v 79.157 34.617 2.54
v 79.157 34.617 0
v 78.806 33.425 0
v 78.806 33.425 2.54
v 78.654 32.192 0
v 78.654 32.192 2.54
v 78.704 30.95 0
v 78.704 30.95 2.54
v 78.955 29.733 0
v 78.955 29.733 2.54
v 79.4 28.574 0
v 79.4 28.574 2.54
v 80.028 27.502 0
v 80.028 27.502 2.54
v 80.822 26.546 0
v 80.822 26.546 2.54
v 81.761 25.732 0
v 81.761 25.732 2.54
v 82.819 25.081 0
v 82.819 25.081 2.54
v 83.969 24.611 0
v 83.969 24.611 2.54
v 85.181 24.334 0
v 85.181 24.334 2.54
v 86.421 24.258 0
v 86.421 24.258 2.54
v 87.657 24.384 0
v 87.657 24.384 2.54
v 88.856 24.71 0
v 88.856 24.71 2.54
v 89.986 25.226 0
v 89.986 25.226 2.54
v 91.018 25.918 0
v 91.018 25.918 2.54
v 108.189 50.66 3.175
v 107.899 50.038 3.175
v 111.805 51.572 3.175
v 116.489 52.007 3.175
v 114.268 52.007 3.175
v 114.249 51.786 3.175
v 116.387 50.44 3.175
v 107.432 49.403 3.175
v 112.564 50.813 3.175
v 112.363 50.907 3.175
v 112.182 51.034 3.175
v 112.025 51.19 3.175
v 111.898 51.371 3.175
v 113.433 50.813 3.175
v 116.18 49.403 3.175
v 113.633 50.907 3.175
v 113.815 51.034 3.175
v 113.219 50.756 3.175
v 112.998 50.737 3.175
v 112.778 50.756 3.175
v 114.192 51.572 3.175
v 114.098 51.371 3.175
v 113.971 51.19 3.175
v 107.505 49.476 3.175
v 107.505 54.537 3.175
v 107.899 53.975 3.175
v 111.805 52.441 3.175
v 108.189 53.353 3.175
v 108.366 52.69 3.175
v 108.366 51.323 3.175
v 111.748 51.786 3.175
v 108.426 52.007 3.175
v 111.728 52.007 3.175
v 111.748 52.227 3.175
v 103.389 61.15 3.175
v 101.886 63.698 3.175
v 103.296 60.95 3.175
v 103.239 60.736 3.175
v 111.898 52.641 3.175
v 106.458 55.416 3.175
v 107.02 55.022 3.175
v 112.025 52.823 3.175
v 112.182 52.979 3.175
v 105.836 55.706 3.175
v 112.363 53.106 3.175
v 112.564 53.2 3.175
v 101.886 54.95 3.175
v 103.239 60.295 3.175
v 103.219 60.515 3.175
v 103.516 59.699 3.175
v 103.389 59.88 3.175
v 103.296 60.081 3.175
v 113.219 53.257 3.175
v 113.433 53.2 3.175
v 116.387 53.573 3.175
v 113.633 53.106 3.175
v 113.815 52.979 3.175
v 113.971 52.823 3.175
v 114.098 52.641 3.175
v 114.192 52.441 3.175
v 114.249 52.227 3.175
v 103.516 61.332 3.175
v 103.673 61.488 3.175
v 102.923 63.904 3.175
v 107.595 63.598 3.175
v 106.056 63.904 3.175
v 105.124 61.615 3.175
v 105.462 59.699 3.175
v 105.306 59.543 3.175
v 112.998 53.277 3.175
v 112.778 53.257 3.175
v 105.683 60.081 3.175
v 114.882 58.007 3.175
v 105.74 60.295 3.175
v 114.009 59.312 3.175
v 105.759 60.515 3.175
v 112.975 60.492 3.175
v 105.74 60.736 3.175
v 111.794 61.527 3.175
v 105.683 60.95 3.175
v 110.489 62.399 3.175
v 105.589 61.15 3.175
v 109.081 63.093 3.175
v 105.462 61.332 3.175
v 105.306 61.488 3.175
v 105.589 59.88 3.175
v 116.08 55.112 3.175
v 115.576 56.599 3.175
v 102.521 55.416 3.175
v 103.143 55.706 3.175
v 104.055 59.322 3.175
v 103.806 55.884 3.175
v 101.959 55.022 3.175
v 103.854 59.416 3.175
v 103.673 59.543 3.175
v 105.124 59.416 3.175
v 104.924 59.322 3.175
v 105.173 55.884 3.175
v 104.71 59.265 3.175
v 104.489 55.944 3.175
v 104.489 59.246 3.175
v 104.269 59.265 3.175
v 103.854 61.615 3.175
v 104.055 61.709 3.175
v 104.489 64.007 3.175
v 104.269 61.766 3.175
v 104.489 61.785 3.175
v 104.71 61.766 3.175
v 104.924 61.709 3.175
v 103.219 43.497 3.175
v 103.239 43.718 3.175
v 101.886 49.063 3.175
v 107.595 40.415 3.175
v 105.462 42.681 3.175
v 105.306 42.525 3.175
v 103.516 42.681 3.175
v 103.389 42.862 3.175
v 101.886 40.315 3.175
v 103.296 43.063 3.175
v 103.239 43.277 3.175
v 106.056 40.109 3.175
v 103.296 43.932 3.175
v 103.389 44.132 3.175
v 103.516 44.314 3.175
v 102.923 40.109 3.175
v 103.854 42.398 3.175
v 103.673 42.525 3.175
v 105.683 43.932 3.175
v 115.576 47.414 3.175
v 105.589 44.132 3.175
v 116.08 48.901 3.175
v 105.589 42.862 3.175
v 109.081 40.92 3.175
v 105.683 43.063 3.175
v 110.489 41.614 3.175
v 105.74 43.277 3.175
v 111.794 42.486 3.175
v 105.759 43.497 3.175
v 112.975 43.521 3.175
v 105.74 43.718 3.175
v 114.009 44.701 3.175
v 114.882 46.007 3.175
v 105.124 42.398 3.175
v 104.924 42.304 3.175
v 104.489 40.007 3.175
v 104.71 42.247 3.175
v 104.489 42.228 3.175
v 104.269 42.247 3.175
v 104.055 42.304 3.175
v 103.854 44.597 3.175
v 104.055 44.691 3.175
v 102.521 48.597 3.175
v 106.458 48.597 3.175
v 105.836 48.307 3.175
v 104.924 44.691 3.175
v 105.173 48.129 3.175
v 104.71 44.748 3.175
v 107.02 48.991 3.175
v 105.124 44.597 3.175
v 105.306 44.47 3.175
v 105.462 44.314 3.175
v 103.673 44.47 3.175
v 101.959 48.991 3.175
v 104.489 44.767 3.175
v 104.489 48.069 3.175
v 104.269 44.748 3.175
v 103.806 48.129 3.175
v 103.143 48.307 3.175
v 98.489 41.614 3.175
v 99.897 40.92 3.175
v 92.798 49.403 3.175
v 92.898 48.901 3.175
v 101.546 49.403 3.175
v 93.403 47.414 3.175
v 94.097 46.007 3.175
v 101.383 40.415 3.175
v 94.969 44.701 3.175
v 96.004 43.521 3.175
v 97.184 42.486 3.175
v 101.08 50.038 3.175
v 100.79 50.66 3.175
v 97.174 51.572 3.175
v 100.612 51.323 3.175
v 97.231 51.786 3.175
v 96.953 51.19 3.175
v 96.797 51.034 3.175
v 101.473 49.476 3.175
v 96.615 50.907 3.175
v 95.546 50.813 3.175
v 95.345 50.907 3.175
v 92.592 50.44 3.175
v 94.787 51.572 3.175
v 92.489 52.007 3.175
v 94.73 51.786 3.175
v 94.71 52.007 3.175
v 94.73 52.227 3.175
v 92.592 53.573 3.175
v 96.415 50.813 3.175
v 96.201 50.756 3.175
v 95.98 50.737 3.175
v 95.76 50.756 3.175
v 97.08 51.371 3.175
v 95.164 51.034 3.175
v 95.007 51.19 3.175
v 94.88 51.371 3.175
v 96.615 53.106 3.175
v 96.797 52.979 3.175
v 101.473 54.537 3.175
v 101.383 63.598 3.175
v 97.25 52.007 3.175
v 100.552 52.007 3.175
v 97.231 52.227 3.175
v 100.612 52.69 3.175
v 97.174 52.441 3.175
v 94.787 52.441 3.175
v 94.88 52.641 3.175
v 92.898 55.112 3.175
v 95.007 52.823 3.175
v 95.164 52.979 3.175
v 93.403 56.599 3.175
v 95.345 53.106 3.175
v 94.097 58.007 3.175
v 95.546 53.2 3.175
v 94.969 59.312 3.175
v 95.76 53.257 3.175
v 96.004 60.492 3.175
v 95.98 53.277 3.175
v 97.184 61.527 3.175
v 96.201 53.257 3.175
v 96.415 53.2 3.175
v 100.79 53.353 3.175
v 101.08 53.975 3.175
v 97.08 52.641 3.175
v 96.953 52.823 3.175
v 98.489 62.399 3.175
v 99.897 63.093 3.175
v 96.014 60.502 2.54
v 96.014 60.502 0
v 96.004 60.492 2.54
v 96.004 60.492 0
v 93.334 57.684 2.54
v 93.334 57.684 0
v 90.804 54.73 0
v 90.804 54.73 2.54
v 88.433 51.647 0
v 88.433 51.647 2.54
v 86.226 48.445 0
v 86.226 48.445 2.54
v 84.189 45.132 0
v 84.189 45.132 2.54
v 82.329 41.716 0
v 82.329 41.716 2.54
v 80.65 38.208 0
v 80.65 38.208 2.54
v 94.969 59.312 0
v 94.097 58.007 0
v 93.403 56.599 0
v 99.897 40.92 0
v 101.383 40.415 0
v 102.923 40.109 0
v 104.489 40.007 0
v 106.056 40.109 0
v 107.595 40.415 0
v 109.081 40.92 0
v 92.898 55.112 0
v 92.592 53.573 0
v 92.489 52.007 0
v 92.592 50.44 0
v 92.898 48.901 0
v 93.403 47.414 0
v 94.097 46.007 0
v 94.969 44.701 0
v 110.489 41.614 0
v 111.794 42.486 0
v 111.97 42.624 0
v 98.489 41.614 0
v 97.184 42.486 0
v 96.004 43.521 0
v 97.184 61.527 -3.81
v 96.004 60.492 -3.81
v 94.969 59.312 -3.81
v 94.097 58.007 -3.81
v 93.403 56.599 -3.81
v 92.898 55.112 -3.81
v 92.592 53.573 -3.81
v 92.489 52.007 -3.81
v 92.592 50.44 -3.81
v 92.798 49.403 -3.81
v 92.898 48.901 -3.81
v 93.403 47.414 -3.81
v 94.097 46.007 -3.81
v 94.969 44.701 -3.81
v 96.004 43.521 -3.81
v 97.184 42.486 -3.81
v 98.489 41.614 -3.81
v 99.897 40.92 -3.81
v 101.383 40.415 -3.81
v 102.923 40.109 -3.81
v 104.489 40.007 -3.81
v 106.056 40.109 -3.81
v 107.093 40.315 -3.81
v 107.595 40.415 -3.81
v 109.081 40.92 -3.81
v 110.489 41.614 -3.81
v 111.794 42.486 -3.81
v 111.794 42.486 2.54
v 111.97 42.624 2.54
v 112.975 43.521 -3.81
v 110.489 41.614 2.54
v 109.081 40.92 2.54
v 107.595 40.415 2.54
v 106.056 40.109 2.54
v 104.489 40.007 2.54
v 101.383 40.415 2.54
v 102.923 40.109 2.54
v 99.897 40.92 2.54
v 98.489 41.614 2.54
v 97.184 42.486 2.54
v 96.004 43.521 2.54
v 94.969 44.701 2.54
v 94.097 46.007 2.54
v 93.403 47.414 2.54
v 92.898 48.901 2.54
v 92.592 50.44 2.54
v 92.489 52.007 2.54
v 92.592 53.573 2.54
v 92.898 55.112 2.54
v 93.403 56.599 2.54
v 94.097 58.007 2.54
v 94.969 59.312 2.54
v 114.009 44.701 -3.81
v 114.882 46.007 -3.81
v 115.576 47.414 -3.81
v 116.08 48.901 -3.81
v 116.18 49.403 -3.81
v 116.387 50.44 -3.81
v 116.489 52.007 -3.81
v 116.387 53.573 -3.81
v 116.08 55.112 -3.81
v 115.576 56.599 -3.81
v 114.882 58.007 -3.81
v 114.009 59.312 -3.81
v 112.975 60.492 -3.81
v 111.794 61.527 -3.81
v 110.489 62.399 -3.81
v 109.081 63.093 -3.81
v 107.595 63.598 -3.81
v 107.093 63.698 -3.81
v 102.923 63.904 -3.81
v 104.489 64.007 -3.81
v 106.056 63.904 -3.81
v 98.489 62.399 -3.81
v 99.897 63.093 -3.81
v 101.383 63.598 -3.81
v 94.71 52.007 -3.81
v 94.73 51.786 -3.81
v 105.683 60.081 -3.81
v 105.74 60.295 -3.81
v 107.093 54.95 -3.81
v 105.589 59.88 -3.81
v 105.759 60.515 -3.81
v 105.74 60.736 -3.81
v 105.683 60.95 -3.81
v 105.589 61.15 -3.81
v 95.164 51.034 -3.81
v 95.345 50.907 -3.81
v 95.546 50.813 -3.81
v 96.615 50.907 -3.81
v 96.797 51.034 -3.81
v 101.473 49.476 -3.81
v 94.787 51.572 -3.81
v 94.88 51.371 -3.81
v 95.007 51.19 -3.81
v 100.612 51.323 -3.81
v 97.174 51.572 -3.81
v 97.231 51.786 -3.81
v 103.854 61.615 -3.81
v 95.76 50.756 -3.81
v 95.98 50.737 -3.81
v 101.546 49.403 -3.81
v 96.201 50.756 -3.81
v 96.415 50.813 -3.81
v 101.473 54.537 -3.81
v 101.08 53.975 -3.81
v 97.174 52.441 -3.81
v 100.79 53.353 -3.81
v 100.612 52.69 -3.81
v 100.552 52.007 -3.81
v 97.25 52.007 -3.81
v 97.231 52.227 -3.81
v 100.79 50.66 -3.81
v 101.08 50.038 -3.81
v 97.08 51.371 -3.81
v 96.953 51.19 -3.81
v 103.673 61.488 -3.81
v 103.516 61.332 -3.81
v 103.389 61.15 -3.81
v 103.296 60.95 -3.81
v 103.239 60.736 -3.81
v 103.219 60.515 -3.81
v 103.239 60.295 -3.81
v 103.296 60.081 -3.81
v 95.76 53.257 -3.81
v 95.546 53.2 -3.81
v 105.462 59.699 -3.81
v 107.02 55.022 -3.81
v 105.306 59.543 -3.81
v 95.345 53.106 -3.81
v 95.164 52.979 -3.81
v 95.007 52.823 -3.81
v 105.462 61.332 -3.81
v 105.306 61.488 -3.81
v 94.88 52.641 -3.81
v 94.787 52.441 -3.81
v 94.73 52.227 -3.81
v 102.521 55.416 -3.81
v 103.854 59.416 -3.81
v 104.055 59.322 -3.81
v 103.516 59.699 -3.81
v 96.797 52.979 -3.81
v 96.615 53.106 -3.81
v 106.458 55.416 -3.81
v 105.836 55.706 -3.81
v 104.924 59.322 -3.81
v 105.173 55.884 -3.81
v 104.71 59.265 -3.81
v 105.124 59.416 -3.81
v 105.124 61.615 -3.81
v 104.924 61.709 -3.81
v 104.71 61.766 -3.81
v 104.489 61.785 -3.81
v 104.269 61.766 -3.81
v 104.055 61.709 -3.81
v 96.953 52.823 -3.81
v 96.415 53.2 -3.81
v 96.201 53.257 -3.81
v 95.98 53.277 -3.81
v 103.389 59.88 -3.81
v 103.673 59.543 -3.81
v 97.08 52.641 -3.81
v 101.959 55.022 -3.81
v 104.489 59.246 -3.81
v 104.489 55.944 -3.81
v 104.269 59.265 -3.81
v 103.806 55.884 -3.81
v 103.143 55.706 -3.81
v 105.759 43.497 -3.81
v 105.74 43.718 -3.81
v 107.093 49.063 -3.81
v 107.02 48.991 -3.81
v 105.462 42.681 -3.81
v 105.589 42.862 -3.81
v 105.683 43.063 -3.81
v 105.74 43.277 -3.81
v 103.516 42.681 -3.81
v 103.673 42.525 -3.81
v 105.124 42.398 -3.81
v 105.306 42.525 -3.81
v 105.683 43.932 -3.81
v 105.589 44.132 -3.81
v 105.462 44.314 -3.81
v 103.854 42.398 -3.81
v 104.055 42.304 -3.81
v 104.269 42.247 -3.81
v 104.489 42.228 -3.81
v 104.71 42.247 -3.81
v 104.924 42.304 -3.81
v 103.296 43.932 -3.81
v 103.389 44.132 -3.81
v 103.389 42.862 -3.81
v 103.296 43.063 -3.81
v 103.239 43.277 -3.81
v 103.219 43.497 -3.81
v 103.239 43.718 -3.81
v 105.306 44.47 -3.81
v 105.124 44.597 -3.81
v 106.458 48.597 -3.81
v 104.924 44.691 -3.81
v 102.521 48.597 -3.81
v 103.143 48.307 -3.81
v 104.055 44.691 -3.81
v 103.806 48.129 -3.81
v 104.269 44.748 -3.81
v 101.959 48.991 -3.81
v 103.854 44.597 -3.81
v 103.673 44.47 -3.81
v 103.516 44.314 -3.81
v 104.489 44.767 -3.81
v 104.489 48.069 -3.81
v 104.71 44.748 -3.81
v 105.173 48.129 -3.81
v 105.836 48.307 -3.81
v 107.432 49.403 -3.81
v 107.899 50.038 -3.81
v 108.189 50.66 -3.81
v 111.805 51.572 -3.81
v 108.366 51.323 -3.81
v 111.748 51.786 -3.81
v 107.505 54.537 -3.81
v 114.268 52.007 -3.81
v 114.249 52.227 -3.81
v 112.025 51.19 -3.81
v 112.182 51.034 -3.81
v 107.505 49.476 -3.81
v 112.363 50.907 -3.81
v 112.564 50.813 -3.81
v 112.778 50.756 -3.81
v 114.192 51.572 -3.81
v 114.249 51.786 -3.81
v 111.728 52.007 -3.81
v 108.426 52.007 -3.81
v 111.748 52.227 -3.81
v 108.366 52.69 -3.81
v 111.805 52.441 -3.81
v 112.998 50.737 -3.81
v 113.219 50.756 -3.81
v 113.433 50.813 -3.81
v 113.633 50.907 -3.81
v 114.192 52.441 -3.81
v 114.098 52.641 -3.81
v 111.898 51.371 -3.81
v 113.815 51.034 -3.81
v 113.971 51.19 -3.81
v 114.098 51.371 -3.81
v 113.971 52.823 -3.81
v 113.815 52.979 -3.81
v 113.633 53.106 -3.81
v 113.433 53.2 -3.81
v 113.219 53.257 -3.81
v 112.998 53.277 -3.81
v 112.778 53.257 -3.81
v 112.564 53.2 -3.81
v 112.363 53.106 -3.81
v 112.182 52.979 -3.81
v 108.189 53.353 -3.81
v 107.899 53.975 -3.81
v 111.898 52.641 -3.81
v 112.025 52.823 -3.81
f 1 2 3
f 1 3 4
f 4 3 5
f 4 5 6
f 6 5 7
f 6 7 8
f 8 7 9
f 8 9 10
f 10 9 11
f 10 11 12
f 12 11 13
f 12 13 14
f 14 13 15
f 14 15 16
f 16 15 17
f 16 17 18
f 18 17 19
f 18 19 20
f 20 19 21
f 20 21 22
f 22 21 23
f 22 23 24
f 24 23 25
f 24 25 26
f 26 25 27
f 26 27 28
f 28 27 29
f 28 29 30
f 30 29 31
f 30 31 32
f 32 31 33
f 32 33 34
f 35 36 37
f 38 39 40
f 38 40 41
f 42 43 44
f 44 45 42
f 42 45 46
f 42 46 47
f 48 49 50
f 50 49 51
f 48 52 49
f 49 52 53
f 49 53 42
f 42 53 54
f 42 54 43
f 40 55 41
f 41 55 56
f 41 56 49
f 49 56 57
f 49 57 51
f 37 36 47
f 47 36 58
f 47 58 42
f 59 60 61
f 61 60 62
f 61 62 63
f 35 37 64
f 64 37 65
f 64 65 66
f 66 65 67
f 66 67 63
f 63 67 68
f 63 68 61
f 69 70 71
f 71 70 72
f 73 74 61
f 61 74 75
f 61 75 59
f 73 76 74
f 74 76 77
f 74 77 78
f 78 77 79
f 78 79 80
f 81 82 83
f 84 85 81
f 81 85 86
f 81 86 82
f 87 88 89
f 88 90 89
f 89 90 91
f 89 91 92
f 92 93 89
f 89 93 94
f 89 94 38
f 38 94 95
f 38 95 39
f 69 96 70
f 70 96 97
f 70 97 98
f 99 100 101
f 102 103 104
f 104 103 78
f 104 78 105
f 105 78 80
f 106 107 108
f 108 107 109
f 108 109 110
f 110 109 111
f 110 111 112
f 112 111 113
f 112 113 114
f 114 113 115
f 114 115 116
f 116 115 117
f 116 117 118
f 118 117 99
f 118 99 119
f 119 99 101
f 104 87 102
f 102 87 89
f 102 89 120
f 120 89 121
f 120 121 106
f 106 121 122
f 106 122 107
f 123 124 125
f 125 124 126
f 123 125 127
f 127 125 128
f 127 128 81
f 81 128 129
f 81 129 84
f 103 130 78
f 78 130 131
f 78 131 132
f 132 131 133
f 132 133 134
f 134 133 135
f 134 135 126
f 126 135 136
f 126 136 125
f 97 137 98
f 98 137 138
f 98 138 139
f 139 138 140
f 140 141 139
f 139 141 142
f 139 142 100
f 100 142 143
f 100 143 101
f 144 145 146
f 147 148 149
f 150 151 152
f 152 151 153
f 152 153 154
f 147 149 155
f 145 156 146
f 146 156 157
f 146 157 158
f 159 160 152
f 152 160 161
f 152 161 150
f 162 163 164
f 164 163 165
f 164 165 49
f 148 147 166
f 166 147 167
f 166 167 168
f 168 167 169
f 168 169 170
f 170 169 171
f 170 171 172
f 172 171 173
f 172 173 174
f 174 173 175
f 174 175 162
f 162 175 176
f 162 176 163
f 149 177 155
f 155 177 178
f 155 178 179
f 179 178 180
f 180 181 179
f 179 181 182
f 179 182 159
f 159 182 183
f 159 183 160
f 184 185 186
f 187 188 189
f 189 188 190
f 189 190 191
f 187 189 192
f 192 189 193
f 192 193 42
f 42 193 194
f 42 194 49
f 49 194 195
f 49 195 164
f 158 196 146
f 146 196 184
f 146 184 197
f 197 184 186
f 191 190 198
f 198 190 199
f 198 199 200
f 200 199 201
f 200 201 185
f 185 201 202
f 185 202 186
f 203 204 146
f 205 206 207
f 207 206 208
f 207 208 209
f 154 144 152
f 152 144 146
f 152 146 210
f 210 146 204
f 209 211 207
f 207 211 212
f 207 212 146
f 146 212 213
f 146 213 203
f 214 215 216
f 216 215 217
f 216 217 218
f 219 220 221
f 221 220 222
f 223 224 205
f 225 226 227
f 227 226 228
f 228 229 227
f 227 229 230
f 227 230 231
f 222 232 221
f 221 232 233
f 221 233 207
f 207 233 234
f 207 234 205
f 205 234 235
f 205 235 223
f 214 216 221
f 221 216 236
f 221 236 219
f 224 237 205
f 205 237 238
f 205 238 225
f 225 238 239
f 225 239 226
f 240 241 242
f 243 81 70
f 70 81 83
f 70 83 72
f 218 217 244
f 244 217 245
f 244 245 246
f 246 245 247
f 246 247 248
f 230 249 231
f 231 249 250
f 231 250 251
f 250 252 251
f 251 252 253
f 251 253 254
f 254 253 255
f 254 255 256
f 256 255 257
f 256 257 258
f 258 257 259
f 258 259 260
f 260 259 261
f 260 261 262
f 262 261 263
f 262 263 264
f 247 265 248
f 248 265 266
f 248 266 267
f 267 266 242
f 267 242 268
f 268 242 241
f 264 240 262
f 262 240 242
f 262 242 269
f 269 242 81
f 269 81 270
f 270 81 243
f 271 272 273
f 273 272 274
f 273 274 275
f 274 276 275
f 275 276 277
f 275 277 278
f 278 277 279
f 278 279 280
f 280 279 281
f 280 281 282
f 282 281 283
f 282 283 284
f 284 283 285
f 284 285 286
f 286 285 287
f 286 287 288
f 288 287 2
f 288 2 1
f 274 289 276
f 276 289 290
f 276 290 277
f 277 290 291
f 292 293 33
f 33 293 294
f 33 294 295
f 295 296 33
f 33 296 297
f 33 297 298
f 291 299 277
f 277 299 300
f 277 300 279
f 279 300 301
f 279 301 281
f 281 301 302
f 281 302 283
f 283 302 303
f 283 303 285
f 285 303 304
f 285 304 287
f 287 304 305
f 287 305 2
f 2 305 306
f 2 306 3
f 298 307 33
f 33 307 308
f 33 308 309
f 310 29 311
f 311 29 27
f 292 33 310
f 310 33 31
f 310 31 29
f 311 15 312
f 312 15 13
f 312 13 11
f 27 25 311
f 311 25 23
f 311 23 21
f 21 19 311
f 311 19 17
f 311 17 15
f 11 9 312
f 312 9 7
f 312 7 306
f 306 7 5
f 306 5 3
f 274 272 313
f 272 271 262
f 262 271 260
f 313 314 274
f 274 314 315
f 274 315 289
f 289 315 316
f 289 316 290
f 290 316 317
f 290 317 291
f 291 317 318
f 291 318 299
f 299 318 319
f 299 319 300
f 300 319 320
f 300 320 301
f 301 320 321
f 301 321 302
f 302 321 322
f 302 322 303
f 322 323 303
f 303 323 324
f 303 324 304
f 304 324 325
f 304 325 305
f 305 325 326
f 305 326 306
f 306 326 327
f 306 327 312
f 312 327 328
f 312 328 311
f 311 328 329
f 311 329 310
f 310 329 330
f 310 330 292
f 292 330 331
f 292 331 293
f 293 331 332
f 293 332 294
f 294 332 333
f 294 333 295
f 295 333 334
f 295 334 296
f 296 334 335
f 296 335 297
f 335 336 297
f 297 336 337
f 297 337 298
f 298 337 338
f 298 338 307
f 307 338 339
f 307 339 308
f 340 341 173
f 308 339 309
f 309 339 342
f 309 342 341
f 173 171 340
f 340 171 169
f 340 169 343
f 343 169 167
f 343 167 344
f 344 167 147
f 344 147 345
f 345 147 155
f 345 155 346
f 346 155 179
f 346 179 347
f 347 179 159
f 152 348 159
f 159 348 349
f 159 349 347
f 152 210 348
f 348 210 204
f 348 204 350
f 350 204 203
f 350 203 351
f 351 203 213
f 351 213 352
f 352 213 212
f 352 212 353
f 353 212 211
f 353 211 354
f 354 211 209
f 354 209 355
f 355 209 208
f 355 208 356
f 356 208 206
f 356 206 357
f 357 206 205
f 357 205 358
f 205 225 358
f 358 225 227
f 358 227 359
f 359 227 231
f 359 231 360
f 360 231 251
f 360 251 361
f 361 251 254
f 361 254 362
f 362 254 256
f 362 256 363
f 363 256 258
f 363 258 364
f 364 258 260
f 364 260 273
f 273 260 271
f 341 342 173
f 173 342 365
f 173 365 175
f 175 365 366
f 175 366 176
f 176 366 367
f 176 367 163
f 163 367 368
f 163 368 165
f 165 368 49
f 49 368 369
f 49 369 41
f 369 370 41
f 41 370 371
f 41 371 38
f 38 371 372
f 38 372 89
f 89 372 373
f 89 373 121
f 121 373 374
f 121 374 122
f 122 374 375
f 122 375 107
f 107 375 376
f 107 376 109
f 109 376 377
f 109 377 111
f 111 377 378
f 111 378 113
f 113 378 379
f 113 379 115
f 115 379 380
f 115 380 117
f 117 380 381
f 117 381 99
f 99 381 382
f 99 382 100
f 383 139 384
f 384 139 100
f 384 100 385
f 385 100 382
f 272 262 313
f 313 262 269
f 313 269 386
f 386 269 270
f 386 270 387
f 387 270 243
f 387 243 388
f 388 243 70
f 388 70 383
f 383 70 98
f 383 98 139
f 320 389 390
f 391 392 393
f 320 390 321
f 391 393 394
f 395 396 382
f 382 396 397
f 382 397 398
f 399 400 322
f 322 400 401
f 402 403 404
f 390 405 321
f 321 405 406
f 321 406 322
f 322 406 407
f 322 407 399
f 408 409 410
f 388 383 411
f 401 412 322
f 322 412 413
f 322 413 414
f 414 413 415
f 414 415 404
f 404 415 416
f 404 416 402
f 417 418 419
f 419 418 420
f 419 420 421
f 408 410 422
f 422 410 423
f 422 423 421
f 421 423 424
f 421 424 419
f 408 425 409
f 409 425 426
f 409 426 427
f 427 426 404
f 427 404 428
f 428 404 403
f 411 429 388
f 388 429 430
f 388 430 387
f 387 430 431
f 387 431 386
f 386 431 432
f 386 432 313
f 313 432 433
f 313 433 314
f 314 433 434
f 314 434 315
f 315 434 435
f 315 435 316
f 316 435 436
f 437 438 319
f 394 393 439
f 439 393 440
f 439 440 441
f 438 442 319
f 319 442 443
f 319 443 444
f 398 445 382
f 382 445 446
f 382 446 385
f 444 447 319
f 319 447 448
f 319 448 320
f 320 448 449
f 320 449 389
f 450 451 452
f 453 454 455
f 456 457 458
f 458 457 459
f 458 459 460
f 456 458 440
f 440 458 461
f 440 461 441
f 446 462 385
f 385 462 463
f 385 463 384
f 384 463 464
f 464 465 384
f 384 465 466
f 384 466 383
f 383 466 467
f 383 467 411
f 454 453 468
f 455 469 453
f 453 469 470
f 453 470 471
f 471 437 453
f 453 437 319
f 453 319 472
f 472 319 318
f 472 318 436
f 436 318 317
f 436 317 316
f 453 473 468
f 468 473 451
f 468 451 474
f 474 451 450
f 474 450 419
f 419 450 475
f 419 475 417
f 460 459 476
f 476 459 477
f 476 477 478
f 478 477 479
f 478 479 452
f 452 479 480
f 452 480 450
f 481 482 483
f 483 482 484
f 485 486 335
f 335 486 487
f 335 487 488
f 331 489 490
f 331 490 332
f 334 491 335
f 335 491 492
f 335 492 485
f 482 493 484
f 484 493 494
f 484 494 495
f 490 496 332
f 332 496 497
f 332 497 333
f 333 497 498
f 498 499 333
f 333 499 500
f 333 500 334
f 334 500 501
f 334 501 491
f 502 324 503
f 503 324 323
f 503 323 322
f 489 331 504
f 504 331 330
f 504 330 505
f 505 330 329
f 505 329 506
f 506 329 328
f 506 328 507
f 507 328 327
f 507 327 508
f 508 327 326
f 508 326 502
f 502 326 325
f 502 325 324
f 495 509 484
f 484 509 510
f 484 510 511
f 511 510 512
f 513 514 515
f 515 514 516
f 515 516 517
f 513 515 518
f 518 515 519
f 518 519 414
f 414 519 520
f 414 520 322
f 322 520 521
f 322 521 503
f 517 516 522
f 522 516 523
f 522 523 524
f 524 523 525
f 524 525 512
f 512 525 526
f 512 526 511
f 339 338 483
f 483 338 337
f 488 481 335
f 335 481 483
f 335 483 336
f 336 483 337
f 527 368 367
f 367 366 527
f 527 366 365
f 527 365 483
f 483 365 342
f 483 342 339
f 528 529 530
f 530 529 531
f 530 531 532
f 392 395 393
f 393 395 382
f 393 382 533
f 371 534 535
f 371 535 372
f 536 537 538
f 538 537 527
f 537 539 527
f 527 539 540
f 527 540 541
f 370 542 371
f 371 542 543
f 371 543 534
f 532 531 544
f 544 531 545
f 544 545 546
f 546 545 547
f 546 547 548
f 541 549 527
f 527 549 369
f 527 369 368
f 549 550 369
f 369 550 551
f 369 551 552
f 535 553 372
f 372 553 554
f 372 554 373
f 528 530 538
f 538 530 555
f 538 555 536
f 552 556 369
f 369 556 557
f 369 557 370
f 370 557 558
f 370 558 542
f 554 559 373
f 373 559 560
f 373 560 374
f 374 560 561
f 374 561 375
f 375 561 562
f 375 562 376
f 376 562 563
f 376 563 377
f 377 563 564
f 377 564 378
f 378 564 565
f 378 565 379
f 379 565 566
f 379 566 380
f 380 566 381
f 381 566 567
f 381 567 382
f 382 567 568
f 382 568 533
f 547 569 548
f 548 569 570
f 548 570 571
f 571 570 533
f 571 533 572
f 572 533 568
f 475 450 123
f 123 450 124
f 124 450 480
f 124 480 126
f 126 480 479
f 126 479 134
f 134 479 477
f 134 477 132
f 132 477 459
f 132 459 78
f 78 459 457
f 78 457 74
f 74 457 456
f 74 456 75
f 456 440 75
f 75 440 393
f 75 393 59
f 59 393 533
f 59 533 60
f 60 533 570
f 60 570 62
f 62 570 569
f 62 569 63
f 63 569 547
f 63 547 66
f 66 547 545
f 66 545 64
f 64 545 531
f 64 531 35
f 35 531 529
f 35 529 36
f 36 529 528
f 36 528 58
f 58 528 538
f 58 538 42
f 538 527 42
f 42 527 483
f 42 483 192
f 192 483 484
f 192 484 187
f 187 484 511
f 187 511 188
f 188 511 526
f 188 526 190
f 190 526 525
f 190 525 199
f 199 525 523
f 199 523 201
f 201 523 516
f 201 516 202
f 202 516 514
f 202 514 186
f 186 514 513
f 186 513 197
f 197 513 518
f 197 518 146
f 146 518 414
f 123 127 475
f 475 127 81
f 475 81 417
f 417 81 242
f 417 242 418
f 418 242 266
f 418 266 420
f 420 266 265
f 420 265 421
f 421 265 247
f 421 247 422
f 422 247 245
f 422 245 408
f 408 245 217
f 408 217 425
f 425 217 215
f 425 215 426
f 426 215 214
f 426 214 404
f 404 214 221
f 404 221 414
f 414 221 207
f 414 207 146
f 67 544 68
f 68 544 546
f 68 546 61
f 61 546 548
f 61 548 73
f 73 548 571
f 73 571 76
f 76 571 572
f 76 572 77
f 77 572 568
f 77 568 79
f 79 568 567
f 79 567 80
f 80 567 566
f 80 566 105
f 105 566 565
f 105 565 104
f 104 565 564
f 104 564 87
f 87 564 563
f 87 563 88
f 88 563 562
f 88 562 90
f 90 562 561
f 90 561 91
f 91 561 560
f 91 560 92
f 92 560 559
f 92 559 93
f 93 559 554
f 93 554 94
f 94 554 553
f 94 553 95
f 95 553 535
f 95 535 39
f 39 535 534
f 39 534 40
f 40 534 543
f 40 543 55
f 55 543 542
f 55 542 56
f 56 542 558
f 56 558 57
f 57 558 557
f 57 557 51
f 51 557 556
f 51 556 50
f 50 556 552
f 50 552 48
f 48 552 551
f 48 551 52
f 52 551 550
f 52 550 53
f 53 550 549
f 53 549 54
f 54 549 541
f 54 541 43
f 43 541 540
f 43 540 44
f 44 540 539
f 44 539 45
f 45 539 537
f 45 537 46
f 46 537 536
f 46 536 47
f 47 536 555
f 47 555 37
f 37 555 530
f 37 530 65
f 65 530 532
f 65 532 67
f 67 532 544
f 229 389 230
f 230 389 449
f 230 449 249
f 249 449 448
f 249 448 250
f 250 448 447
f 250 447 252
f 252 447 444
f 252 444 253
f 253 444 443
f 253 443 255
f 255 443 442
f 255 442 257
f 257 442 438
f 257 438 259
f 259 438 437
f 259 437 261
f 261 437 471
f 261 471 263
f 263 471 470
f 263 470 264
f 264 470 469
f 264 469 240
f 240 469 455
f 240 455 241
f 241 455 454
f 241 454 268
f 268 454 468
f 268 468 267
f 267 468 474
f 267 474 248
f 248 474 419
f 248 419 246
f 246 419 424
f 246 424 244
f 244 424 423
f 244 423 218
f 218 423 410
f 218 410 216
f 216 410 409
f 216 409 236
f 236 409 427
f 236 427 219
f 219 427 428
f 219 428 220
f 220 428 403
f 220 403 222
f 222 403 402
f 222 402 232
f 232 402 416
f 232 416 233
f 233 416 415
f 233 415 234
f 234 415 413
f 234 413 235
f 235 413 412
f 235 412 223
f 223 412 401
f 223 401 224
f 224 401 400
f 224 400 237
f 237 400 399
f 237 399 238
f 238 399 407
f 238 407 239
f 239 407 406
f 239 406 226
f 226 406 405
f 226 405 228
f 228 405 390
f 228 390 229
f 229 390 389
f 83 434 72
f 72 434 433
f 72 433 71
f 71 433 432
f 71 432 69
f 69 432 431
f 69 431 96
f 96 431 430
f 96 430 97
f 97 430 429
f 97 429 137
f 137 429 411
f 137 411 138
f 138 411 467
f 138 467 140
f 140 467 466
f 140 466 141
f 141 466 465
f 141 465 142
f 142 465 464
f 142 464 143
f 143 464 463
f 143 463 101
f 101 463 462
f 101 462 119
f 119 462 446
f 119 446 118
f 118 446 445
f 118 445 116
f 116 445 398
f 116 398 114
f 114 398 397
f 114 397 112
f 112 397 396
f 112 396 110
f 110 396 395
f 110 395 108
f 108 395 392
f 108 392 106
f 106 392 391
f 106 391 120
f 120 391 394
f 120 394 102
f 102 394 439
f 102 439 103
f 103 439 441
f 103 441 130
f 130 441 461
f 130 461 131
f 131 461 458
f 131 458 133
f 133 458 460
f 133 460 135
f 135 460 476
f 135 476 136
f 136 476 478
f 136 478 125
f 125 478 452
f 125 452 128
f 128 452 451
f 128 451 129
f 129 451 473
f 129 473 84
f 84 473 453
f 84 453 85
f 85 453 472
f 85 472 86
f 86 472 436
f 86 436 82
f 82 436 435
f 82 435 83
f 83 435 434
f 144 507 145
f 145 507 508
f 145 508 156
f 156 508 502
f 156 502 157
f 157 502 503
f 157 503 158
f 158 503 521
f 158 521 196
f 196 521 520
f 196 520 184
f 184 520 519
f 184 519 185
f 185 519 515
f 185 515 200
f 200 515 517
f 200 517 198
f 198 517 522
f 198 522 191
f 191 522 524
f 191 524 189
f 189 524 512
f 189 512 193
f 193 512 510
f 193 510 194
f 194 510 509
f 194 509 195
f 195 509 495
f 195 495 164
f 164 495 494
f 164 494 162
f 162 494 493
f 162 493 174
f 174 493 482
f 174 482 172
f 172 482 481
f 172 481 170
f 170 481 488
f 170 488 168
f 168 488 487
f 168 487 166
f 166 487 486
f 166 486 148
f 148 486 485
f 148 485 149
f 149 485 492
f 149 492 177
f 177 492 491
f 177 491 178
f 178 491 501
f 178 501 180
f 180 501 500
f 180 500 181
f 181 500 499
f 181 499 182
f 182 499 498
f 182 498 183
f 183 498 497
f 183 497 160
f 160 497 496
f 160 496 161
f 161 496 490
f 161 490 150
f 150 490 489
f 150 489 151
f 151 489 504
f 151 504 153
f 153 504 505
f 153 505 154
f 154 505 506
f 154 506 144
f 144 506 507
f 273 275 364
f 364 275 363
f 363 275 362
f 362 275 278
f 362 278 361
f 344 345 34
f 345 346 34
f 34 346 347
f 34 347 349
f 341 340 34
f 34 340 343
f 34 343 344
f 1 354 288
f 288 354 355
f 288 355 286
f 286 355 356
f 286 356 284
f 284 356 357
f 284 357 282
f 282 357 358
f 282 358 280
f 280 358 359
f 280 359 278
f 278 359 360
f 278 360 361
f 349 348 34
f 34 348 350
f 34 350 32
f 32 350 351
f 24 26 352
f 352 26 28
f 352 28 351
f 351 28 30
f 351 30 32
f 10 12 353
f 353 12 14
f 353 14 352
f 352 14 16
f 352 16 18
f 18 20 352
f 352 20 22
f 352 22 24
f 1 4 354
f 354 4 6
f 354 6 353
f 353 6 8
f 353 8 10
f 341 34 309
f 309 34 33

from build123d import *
from build123d.topology import SkipClean

# Parameters (mm, degrees)
SKETCH1_R           = 12
BOSS_EXTRUDE1_DEPTH = 3.175
BOSS_EXTRUDE2_START = 3.81
SKETCH2_R           = 12
BOSS_EXTRUDE2_DEPTH = 3.81
SKETCH3_R           = 3.937
CUT_EXTRUDE1_DEPTH  = 134.099089527
SKETCH4_R           = 1.27
CUT_EXTRUDE2_DEPTH  = 134.099089527
CUT_EXTRUDE3_DEPTH  = 133.970273023
CUT_EXTRUDE4_START  = -0.635
CUT_EXTRUDE4_DEPTH  = 0.635
BOSS_EXTRUDE3_START = -2.54
BOSS_EXTRUDE3_DEPTH = 2.54


with BuildPart() as part:
    # Sketch1 → Boss-Extrude1 (new body)
    with BuildSketch(Plane.XY):
        with BuildLine():
            ThreePointArc((79.156979953, 34.616777747), (78.764409425, 33.207913627), (78.648230314, 31.75))
            Line((78.648230314, 31.75), (93.886132052, 31.75))
            ThreePointArc((93.886132052, 31.75), (93.886918896, 31.813218964), (93.887181183, 31.876442281))
            ThreePointArc((93.887181183, 31.876442281), (87.66085737, 39.367908538), (79.156979953, 34.616777747))
        make_face()
        with BuildLine():
            ThreePointArc((87.4395, 24.347161532), (88.598049964, 24.621688616), (89.699693339, 25.073335615))
            ThreePointArc((89.699693339, 25.073335615), (92.723044454, 27.828451492), (93.886132052, 31.75))
            Line((93.886132052, 31.75), (78.648230314, 31.75))
            ThreePointArc((78.648230314, 31.75), (79.141141445, 29.177561465), (80.476005529, 26.924))
            Line((80.476005529, 26.924), (87.4395, 26.924))
            Line((87.4395, 26.924), (87.4395, 24.347161532))
        make_face()
        with BuildLine():
            Line((87.4395, 26.924), (80.476005529, 26.924))
            ThreePointArc((80.476005529, 26.924), (82.246043304, 25.403819152), (84.393093646, 24.490496444))
            ThreePointArc((84.393093646, 24.490496444), (85.909052633, 24.264862685), (87.4395, 24.347161532))
            Line((87.4395, 24.347161532), (87.4395, 26.924))
        make_face()
        with BuildLine():
            ThreePointArc((89.699693339, 25.073335615), (94.483227873, 27.711788353), (99.06, 30.694537484))
            Line((99.06, 30.694537484), (99.06, 31.75))
            Line((99.06, 31.75), (93.886132052, 31.75))
            ThreePointArc((93.886132052, 31.75), (92.723044454, 27.828451492), (89.699693339, 25.073335615))
        make_face()
        with BuildLine():
            ThreePointArc((99.06, 30.694537484), (106.888760949, 37.054762789), (113.784062988, 44.416608597))
            ThreePointArc((113.784062988, 44.416608597), (96.436063978, 43.110085278), (96.014300162, 60.502100346))
            ThreePointArc((96.014300162, 60.502100346), (86.225733854, 48.445051897), (79.156979953, 34.616777747))
            ThreePointArc((79.156979953, 34.616777747), (87.66085737, 39.367908538), (93.887181183, 31.876442281))
            ThreePointArc((93.887181183, 31.876442281), (93.886918896, 31.813218964), (93.886132052, 31.75))
            Line((93.886132052, 31.75), (99.06, 31.75))
            Line((99.06, 31.75), (99.06, 30.694537484))
        make_face()
        with Locations((104.48925, 52.0065)):
            Circle(SKETCH1_R)
    extrude(amount=BOSS_EXTRUDE1_DEPTH)

    # Sketch2 → Boss-Extrude2 (add)
    with SkipClean():  # the faces are left unmerged after this step: merging them gives an invalid solid
        with BuildSketch(Plane(origin=(0, 0, 0), x_dir=(-1, 0, 0), z_dir=(0, 0, -1)).offset(BOSS_EXTRUDE2_START)):
            with Locations((-104.48925, 52.0065)):
                Circle(SKETCH2_R)
        extrude(amount=-BOSS_EXTRUDE2_DEPTH)

    # Sketch3 → Cut-Extrude1 (cut, through all)
    with SkipClean():  # the faces are left unmerged after this step: merging them gives an invalid solid
        with BuildSketch(Plane(origin=(0, 0, -3.81), x_dir=(-1, 0, 0), z_dir=(0, 0, -1))):
            with Locations((-104.48925, 52.0065)):
                Circle(SKETCH3_R)
        extrude(amount=-CUT_EXTRUDE1_DEPTH, mode=Mode.SUBTRACT)

    # Sketch4 → Cut-Extrude2 (cut, through all)
    with SkipClean():  # the faces are left unmerged after this step: merging them gives an invalid solid
        with BuildSketch(Plane(origin=(0, 0, -3.81), x_dir=(-1, 0, 0), z_dir=(0, 0, -1))):
            with Locations((-112.99825, 52.0065)):
                Circle(SKETCH4_R)
            with Locations((-95.98025, 52.0065)):
                Circle(SKETCH4_R)
            with Locations((-104.48925, 60.5155)):
                Circle(SKETCH4_R)
            with Locations((-104.48925, 43.4975)):
                Circle(SKETCH4_R)
        extrude(amount=-CUT_EXTRUDE2_DEPTH, mode=Mode.SUBTRACT)

    # Sketch5 → Cut-Extrude3 (cut, through all)
    with SkipClean():  # the faces are left unmerged after this step: merging them gives an invalid solid
        with BuildSketch(Plane(origin=(0, 0, 0), x_dir=(-1, 0, 0), z_dir=(0, 0, -1))):
            with BuildLine():
                ThreePointArc((-104.430493989, 40.006643845), (-109.606684651, 41.15238269), (-113.7840634, 44.4166091))
                ThreePointArc((-113.7840634, 44.4166091), (-102.758092767, 33.479680706), (-89.699693406, 25.073335649))
                ThreePointArc((-89.699693406, 25.073335649), (-92.462895691, 27.440507008), (-93.81346398, 30.819079549))
                ThreePointArc((-93.81346398, 30.819079549), (-97.397477458, 37.40567327), (-104.430493989, 40.006643845))
            make_face()
        extrude(amount=-CUT_EXTRUDE3_DEPTH, mode=Mode.SUBTRACT)
    add(part.part.scale(1), mode=Mode.REPLACE)  # the faces are merged on a copy

    # Sketch6 → Cut-Extrude4 (cut)
    with BuildSketch(Plane.XY.offset(3.175).offset(CUT_EXTRUDE4_START)):
        with BuildLine():
            ThreePointArc((96.014299675, 60.502099861), (86.225733771, 48.44505177), (79.156980092, 34.616778107))
            ThreePointArc((79.156980092, 34.616778107), (84.355854315, 24.500045491), (93.81346398, 30.819079549))
            ThreePointArc((93.81346398, 30.819079549), (97.397477458, 37.40567327), (104.430493989, 40.006643845))
            ThreePointArc((104.430493989, 40.006643845), (93.388711037, 47.448207038), (96.014299675, 60.502099861))
        make_face()
    extrude(amount=CUT_EXTRUDE4_DEPTH, mode=Mode.SUBTRACT)

    # Sketch7 → Boss-Extrude3 (add)
    with BuildSketch(Plane.XY.offset(2.54).offset(BOSS_EXTRUDE3_START)):
        with BuildLine():
            ThreePointArc((93.81346398, 30.819079549), (92.885787929, 28.100406696), (91.017515109, 25.918361416))
            Line((91.017515109, 25.918361416), (111.970090828, 42.623695489))
            ThreePointArc((111.970090828, 42.623695489), (108.424231015, 40.670013577), (104.430493989, 40.006643845))
            ThreePointArc((104.430493989, 40.006643845), (97.397477458, 37.40567327), (93.81346398, 30.819079549))
        make_face()
    extrude(amount=BOSS_EXTRUDE3_DEPTH)


solid = part.part
